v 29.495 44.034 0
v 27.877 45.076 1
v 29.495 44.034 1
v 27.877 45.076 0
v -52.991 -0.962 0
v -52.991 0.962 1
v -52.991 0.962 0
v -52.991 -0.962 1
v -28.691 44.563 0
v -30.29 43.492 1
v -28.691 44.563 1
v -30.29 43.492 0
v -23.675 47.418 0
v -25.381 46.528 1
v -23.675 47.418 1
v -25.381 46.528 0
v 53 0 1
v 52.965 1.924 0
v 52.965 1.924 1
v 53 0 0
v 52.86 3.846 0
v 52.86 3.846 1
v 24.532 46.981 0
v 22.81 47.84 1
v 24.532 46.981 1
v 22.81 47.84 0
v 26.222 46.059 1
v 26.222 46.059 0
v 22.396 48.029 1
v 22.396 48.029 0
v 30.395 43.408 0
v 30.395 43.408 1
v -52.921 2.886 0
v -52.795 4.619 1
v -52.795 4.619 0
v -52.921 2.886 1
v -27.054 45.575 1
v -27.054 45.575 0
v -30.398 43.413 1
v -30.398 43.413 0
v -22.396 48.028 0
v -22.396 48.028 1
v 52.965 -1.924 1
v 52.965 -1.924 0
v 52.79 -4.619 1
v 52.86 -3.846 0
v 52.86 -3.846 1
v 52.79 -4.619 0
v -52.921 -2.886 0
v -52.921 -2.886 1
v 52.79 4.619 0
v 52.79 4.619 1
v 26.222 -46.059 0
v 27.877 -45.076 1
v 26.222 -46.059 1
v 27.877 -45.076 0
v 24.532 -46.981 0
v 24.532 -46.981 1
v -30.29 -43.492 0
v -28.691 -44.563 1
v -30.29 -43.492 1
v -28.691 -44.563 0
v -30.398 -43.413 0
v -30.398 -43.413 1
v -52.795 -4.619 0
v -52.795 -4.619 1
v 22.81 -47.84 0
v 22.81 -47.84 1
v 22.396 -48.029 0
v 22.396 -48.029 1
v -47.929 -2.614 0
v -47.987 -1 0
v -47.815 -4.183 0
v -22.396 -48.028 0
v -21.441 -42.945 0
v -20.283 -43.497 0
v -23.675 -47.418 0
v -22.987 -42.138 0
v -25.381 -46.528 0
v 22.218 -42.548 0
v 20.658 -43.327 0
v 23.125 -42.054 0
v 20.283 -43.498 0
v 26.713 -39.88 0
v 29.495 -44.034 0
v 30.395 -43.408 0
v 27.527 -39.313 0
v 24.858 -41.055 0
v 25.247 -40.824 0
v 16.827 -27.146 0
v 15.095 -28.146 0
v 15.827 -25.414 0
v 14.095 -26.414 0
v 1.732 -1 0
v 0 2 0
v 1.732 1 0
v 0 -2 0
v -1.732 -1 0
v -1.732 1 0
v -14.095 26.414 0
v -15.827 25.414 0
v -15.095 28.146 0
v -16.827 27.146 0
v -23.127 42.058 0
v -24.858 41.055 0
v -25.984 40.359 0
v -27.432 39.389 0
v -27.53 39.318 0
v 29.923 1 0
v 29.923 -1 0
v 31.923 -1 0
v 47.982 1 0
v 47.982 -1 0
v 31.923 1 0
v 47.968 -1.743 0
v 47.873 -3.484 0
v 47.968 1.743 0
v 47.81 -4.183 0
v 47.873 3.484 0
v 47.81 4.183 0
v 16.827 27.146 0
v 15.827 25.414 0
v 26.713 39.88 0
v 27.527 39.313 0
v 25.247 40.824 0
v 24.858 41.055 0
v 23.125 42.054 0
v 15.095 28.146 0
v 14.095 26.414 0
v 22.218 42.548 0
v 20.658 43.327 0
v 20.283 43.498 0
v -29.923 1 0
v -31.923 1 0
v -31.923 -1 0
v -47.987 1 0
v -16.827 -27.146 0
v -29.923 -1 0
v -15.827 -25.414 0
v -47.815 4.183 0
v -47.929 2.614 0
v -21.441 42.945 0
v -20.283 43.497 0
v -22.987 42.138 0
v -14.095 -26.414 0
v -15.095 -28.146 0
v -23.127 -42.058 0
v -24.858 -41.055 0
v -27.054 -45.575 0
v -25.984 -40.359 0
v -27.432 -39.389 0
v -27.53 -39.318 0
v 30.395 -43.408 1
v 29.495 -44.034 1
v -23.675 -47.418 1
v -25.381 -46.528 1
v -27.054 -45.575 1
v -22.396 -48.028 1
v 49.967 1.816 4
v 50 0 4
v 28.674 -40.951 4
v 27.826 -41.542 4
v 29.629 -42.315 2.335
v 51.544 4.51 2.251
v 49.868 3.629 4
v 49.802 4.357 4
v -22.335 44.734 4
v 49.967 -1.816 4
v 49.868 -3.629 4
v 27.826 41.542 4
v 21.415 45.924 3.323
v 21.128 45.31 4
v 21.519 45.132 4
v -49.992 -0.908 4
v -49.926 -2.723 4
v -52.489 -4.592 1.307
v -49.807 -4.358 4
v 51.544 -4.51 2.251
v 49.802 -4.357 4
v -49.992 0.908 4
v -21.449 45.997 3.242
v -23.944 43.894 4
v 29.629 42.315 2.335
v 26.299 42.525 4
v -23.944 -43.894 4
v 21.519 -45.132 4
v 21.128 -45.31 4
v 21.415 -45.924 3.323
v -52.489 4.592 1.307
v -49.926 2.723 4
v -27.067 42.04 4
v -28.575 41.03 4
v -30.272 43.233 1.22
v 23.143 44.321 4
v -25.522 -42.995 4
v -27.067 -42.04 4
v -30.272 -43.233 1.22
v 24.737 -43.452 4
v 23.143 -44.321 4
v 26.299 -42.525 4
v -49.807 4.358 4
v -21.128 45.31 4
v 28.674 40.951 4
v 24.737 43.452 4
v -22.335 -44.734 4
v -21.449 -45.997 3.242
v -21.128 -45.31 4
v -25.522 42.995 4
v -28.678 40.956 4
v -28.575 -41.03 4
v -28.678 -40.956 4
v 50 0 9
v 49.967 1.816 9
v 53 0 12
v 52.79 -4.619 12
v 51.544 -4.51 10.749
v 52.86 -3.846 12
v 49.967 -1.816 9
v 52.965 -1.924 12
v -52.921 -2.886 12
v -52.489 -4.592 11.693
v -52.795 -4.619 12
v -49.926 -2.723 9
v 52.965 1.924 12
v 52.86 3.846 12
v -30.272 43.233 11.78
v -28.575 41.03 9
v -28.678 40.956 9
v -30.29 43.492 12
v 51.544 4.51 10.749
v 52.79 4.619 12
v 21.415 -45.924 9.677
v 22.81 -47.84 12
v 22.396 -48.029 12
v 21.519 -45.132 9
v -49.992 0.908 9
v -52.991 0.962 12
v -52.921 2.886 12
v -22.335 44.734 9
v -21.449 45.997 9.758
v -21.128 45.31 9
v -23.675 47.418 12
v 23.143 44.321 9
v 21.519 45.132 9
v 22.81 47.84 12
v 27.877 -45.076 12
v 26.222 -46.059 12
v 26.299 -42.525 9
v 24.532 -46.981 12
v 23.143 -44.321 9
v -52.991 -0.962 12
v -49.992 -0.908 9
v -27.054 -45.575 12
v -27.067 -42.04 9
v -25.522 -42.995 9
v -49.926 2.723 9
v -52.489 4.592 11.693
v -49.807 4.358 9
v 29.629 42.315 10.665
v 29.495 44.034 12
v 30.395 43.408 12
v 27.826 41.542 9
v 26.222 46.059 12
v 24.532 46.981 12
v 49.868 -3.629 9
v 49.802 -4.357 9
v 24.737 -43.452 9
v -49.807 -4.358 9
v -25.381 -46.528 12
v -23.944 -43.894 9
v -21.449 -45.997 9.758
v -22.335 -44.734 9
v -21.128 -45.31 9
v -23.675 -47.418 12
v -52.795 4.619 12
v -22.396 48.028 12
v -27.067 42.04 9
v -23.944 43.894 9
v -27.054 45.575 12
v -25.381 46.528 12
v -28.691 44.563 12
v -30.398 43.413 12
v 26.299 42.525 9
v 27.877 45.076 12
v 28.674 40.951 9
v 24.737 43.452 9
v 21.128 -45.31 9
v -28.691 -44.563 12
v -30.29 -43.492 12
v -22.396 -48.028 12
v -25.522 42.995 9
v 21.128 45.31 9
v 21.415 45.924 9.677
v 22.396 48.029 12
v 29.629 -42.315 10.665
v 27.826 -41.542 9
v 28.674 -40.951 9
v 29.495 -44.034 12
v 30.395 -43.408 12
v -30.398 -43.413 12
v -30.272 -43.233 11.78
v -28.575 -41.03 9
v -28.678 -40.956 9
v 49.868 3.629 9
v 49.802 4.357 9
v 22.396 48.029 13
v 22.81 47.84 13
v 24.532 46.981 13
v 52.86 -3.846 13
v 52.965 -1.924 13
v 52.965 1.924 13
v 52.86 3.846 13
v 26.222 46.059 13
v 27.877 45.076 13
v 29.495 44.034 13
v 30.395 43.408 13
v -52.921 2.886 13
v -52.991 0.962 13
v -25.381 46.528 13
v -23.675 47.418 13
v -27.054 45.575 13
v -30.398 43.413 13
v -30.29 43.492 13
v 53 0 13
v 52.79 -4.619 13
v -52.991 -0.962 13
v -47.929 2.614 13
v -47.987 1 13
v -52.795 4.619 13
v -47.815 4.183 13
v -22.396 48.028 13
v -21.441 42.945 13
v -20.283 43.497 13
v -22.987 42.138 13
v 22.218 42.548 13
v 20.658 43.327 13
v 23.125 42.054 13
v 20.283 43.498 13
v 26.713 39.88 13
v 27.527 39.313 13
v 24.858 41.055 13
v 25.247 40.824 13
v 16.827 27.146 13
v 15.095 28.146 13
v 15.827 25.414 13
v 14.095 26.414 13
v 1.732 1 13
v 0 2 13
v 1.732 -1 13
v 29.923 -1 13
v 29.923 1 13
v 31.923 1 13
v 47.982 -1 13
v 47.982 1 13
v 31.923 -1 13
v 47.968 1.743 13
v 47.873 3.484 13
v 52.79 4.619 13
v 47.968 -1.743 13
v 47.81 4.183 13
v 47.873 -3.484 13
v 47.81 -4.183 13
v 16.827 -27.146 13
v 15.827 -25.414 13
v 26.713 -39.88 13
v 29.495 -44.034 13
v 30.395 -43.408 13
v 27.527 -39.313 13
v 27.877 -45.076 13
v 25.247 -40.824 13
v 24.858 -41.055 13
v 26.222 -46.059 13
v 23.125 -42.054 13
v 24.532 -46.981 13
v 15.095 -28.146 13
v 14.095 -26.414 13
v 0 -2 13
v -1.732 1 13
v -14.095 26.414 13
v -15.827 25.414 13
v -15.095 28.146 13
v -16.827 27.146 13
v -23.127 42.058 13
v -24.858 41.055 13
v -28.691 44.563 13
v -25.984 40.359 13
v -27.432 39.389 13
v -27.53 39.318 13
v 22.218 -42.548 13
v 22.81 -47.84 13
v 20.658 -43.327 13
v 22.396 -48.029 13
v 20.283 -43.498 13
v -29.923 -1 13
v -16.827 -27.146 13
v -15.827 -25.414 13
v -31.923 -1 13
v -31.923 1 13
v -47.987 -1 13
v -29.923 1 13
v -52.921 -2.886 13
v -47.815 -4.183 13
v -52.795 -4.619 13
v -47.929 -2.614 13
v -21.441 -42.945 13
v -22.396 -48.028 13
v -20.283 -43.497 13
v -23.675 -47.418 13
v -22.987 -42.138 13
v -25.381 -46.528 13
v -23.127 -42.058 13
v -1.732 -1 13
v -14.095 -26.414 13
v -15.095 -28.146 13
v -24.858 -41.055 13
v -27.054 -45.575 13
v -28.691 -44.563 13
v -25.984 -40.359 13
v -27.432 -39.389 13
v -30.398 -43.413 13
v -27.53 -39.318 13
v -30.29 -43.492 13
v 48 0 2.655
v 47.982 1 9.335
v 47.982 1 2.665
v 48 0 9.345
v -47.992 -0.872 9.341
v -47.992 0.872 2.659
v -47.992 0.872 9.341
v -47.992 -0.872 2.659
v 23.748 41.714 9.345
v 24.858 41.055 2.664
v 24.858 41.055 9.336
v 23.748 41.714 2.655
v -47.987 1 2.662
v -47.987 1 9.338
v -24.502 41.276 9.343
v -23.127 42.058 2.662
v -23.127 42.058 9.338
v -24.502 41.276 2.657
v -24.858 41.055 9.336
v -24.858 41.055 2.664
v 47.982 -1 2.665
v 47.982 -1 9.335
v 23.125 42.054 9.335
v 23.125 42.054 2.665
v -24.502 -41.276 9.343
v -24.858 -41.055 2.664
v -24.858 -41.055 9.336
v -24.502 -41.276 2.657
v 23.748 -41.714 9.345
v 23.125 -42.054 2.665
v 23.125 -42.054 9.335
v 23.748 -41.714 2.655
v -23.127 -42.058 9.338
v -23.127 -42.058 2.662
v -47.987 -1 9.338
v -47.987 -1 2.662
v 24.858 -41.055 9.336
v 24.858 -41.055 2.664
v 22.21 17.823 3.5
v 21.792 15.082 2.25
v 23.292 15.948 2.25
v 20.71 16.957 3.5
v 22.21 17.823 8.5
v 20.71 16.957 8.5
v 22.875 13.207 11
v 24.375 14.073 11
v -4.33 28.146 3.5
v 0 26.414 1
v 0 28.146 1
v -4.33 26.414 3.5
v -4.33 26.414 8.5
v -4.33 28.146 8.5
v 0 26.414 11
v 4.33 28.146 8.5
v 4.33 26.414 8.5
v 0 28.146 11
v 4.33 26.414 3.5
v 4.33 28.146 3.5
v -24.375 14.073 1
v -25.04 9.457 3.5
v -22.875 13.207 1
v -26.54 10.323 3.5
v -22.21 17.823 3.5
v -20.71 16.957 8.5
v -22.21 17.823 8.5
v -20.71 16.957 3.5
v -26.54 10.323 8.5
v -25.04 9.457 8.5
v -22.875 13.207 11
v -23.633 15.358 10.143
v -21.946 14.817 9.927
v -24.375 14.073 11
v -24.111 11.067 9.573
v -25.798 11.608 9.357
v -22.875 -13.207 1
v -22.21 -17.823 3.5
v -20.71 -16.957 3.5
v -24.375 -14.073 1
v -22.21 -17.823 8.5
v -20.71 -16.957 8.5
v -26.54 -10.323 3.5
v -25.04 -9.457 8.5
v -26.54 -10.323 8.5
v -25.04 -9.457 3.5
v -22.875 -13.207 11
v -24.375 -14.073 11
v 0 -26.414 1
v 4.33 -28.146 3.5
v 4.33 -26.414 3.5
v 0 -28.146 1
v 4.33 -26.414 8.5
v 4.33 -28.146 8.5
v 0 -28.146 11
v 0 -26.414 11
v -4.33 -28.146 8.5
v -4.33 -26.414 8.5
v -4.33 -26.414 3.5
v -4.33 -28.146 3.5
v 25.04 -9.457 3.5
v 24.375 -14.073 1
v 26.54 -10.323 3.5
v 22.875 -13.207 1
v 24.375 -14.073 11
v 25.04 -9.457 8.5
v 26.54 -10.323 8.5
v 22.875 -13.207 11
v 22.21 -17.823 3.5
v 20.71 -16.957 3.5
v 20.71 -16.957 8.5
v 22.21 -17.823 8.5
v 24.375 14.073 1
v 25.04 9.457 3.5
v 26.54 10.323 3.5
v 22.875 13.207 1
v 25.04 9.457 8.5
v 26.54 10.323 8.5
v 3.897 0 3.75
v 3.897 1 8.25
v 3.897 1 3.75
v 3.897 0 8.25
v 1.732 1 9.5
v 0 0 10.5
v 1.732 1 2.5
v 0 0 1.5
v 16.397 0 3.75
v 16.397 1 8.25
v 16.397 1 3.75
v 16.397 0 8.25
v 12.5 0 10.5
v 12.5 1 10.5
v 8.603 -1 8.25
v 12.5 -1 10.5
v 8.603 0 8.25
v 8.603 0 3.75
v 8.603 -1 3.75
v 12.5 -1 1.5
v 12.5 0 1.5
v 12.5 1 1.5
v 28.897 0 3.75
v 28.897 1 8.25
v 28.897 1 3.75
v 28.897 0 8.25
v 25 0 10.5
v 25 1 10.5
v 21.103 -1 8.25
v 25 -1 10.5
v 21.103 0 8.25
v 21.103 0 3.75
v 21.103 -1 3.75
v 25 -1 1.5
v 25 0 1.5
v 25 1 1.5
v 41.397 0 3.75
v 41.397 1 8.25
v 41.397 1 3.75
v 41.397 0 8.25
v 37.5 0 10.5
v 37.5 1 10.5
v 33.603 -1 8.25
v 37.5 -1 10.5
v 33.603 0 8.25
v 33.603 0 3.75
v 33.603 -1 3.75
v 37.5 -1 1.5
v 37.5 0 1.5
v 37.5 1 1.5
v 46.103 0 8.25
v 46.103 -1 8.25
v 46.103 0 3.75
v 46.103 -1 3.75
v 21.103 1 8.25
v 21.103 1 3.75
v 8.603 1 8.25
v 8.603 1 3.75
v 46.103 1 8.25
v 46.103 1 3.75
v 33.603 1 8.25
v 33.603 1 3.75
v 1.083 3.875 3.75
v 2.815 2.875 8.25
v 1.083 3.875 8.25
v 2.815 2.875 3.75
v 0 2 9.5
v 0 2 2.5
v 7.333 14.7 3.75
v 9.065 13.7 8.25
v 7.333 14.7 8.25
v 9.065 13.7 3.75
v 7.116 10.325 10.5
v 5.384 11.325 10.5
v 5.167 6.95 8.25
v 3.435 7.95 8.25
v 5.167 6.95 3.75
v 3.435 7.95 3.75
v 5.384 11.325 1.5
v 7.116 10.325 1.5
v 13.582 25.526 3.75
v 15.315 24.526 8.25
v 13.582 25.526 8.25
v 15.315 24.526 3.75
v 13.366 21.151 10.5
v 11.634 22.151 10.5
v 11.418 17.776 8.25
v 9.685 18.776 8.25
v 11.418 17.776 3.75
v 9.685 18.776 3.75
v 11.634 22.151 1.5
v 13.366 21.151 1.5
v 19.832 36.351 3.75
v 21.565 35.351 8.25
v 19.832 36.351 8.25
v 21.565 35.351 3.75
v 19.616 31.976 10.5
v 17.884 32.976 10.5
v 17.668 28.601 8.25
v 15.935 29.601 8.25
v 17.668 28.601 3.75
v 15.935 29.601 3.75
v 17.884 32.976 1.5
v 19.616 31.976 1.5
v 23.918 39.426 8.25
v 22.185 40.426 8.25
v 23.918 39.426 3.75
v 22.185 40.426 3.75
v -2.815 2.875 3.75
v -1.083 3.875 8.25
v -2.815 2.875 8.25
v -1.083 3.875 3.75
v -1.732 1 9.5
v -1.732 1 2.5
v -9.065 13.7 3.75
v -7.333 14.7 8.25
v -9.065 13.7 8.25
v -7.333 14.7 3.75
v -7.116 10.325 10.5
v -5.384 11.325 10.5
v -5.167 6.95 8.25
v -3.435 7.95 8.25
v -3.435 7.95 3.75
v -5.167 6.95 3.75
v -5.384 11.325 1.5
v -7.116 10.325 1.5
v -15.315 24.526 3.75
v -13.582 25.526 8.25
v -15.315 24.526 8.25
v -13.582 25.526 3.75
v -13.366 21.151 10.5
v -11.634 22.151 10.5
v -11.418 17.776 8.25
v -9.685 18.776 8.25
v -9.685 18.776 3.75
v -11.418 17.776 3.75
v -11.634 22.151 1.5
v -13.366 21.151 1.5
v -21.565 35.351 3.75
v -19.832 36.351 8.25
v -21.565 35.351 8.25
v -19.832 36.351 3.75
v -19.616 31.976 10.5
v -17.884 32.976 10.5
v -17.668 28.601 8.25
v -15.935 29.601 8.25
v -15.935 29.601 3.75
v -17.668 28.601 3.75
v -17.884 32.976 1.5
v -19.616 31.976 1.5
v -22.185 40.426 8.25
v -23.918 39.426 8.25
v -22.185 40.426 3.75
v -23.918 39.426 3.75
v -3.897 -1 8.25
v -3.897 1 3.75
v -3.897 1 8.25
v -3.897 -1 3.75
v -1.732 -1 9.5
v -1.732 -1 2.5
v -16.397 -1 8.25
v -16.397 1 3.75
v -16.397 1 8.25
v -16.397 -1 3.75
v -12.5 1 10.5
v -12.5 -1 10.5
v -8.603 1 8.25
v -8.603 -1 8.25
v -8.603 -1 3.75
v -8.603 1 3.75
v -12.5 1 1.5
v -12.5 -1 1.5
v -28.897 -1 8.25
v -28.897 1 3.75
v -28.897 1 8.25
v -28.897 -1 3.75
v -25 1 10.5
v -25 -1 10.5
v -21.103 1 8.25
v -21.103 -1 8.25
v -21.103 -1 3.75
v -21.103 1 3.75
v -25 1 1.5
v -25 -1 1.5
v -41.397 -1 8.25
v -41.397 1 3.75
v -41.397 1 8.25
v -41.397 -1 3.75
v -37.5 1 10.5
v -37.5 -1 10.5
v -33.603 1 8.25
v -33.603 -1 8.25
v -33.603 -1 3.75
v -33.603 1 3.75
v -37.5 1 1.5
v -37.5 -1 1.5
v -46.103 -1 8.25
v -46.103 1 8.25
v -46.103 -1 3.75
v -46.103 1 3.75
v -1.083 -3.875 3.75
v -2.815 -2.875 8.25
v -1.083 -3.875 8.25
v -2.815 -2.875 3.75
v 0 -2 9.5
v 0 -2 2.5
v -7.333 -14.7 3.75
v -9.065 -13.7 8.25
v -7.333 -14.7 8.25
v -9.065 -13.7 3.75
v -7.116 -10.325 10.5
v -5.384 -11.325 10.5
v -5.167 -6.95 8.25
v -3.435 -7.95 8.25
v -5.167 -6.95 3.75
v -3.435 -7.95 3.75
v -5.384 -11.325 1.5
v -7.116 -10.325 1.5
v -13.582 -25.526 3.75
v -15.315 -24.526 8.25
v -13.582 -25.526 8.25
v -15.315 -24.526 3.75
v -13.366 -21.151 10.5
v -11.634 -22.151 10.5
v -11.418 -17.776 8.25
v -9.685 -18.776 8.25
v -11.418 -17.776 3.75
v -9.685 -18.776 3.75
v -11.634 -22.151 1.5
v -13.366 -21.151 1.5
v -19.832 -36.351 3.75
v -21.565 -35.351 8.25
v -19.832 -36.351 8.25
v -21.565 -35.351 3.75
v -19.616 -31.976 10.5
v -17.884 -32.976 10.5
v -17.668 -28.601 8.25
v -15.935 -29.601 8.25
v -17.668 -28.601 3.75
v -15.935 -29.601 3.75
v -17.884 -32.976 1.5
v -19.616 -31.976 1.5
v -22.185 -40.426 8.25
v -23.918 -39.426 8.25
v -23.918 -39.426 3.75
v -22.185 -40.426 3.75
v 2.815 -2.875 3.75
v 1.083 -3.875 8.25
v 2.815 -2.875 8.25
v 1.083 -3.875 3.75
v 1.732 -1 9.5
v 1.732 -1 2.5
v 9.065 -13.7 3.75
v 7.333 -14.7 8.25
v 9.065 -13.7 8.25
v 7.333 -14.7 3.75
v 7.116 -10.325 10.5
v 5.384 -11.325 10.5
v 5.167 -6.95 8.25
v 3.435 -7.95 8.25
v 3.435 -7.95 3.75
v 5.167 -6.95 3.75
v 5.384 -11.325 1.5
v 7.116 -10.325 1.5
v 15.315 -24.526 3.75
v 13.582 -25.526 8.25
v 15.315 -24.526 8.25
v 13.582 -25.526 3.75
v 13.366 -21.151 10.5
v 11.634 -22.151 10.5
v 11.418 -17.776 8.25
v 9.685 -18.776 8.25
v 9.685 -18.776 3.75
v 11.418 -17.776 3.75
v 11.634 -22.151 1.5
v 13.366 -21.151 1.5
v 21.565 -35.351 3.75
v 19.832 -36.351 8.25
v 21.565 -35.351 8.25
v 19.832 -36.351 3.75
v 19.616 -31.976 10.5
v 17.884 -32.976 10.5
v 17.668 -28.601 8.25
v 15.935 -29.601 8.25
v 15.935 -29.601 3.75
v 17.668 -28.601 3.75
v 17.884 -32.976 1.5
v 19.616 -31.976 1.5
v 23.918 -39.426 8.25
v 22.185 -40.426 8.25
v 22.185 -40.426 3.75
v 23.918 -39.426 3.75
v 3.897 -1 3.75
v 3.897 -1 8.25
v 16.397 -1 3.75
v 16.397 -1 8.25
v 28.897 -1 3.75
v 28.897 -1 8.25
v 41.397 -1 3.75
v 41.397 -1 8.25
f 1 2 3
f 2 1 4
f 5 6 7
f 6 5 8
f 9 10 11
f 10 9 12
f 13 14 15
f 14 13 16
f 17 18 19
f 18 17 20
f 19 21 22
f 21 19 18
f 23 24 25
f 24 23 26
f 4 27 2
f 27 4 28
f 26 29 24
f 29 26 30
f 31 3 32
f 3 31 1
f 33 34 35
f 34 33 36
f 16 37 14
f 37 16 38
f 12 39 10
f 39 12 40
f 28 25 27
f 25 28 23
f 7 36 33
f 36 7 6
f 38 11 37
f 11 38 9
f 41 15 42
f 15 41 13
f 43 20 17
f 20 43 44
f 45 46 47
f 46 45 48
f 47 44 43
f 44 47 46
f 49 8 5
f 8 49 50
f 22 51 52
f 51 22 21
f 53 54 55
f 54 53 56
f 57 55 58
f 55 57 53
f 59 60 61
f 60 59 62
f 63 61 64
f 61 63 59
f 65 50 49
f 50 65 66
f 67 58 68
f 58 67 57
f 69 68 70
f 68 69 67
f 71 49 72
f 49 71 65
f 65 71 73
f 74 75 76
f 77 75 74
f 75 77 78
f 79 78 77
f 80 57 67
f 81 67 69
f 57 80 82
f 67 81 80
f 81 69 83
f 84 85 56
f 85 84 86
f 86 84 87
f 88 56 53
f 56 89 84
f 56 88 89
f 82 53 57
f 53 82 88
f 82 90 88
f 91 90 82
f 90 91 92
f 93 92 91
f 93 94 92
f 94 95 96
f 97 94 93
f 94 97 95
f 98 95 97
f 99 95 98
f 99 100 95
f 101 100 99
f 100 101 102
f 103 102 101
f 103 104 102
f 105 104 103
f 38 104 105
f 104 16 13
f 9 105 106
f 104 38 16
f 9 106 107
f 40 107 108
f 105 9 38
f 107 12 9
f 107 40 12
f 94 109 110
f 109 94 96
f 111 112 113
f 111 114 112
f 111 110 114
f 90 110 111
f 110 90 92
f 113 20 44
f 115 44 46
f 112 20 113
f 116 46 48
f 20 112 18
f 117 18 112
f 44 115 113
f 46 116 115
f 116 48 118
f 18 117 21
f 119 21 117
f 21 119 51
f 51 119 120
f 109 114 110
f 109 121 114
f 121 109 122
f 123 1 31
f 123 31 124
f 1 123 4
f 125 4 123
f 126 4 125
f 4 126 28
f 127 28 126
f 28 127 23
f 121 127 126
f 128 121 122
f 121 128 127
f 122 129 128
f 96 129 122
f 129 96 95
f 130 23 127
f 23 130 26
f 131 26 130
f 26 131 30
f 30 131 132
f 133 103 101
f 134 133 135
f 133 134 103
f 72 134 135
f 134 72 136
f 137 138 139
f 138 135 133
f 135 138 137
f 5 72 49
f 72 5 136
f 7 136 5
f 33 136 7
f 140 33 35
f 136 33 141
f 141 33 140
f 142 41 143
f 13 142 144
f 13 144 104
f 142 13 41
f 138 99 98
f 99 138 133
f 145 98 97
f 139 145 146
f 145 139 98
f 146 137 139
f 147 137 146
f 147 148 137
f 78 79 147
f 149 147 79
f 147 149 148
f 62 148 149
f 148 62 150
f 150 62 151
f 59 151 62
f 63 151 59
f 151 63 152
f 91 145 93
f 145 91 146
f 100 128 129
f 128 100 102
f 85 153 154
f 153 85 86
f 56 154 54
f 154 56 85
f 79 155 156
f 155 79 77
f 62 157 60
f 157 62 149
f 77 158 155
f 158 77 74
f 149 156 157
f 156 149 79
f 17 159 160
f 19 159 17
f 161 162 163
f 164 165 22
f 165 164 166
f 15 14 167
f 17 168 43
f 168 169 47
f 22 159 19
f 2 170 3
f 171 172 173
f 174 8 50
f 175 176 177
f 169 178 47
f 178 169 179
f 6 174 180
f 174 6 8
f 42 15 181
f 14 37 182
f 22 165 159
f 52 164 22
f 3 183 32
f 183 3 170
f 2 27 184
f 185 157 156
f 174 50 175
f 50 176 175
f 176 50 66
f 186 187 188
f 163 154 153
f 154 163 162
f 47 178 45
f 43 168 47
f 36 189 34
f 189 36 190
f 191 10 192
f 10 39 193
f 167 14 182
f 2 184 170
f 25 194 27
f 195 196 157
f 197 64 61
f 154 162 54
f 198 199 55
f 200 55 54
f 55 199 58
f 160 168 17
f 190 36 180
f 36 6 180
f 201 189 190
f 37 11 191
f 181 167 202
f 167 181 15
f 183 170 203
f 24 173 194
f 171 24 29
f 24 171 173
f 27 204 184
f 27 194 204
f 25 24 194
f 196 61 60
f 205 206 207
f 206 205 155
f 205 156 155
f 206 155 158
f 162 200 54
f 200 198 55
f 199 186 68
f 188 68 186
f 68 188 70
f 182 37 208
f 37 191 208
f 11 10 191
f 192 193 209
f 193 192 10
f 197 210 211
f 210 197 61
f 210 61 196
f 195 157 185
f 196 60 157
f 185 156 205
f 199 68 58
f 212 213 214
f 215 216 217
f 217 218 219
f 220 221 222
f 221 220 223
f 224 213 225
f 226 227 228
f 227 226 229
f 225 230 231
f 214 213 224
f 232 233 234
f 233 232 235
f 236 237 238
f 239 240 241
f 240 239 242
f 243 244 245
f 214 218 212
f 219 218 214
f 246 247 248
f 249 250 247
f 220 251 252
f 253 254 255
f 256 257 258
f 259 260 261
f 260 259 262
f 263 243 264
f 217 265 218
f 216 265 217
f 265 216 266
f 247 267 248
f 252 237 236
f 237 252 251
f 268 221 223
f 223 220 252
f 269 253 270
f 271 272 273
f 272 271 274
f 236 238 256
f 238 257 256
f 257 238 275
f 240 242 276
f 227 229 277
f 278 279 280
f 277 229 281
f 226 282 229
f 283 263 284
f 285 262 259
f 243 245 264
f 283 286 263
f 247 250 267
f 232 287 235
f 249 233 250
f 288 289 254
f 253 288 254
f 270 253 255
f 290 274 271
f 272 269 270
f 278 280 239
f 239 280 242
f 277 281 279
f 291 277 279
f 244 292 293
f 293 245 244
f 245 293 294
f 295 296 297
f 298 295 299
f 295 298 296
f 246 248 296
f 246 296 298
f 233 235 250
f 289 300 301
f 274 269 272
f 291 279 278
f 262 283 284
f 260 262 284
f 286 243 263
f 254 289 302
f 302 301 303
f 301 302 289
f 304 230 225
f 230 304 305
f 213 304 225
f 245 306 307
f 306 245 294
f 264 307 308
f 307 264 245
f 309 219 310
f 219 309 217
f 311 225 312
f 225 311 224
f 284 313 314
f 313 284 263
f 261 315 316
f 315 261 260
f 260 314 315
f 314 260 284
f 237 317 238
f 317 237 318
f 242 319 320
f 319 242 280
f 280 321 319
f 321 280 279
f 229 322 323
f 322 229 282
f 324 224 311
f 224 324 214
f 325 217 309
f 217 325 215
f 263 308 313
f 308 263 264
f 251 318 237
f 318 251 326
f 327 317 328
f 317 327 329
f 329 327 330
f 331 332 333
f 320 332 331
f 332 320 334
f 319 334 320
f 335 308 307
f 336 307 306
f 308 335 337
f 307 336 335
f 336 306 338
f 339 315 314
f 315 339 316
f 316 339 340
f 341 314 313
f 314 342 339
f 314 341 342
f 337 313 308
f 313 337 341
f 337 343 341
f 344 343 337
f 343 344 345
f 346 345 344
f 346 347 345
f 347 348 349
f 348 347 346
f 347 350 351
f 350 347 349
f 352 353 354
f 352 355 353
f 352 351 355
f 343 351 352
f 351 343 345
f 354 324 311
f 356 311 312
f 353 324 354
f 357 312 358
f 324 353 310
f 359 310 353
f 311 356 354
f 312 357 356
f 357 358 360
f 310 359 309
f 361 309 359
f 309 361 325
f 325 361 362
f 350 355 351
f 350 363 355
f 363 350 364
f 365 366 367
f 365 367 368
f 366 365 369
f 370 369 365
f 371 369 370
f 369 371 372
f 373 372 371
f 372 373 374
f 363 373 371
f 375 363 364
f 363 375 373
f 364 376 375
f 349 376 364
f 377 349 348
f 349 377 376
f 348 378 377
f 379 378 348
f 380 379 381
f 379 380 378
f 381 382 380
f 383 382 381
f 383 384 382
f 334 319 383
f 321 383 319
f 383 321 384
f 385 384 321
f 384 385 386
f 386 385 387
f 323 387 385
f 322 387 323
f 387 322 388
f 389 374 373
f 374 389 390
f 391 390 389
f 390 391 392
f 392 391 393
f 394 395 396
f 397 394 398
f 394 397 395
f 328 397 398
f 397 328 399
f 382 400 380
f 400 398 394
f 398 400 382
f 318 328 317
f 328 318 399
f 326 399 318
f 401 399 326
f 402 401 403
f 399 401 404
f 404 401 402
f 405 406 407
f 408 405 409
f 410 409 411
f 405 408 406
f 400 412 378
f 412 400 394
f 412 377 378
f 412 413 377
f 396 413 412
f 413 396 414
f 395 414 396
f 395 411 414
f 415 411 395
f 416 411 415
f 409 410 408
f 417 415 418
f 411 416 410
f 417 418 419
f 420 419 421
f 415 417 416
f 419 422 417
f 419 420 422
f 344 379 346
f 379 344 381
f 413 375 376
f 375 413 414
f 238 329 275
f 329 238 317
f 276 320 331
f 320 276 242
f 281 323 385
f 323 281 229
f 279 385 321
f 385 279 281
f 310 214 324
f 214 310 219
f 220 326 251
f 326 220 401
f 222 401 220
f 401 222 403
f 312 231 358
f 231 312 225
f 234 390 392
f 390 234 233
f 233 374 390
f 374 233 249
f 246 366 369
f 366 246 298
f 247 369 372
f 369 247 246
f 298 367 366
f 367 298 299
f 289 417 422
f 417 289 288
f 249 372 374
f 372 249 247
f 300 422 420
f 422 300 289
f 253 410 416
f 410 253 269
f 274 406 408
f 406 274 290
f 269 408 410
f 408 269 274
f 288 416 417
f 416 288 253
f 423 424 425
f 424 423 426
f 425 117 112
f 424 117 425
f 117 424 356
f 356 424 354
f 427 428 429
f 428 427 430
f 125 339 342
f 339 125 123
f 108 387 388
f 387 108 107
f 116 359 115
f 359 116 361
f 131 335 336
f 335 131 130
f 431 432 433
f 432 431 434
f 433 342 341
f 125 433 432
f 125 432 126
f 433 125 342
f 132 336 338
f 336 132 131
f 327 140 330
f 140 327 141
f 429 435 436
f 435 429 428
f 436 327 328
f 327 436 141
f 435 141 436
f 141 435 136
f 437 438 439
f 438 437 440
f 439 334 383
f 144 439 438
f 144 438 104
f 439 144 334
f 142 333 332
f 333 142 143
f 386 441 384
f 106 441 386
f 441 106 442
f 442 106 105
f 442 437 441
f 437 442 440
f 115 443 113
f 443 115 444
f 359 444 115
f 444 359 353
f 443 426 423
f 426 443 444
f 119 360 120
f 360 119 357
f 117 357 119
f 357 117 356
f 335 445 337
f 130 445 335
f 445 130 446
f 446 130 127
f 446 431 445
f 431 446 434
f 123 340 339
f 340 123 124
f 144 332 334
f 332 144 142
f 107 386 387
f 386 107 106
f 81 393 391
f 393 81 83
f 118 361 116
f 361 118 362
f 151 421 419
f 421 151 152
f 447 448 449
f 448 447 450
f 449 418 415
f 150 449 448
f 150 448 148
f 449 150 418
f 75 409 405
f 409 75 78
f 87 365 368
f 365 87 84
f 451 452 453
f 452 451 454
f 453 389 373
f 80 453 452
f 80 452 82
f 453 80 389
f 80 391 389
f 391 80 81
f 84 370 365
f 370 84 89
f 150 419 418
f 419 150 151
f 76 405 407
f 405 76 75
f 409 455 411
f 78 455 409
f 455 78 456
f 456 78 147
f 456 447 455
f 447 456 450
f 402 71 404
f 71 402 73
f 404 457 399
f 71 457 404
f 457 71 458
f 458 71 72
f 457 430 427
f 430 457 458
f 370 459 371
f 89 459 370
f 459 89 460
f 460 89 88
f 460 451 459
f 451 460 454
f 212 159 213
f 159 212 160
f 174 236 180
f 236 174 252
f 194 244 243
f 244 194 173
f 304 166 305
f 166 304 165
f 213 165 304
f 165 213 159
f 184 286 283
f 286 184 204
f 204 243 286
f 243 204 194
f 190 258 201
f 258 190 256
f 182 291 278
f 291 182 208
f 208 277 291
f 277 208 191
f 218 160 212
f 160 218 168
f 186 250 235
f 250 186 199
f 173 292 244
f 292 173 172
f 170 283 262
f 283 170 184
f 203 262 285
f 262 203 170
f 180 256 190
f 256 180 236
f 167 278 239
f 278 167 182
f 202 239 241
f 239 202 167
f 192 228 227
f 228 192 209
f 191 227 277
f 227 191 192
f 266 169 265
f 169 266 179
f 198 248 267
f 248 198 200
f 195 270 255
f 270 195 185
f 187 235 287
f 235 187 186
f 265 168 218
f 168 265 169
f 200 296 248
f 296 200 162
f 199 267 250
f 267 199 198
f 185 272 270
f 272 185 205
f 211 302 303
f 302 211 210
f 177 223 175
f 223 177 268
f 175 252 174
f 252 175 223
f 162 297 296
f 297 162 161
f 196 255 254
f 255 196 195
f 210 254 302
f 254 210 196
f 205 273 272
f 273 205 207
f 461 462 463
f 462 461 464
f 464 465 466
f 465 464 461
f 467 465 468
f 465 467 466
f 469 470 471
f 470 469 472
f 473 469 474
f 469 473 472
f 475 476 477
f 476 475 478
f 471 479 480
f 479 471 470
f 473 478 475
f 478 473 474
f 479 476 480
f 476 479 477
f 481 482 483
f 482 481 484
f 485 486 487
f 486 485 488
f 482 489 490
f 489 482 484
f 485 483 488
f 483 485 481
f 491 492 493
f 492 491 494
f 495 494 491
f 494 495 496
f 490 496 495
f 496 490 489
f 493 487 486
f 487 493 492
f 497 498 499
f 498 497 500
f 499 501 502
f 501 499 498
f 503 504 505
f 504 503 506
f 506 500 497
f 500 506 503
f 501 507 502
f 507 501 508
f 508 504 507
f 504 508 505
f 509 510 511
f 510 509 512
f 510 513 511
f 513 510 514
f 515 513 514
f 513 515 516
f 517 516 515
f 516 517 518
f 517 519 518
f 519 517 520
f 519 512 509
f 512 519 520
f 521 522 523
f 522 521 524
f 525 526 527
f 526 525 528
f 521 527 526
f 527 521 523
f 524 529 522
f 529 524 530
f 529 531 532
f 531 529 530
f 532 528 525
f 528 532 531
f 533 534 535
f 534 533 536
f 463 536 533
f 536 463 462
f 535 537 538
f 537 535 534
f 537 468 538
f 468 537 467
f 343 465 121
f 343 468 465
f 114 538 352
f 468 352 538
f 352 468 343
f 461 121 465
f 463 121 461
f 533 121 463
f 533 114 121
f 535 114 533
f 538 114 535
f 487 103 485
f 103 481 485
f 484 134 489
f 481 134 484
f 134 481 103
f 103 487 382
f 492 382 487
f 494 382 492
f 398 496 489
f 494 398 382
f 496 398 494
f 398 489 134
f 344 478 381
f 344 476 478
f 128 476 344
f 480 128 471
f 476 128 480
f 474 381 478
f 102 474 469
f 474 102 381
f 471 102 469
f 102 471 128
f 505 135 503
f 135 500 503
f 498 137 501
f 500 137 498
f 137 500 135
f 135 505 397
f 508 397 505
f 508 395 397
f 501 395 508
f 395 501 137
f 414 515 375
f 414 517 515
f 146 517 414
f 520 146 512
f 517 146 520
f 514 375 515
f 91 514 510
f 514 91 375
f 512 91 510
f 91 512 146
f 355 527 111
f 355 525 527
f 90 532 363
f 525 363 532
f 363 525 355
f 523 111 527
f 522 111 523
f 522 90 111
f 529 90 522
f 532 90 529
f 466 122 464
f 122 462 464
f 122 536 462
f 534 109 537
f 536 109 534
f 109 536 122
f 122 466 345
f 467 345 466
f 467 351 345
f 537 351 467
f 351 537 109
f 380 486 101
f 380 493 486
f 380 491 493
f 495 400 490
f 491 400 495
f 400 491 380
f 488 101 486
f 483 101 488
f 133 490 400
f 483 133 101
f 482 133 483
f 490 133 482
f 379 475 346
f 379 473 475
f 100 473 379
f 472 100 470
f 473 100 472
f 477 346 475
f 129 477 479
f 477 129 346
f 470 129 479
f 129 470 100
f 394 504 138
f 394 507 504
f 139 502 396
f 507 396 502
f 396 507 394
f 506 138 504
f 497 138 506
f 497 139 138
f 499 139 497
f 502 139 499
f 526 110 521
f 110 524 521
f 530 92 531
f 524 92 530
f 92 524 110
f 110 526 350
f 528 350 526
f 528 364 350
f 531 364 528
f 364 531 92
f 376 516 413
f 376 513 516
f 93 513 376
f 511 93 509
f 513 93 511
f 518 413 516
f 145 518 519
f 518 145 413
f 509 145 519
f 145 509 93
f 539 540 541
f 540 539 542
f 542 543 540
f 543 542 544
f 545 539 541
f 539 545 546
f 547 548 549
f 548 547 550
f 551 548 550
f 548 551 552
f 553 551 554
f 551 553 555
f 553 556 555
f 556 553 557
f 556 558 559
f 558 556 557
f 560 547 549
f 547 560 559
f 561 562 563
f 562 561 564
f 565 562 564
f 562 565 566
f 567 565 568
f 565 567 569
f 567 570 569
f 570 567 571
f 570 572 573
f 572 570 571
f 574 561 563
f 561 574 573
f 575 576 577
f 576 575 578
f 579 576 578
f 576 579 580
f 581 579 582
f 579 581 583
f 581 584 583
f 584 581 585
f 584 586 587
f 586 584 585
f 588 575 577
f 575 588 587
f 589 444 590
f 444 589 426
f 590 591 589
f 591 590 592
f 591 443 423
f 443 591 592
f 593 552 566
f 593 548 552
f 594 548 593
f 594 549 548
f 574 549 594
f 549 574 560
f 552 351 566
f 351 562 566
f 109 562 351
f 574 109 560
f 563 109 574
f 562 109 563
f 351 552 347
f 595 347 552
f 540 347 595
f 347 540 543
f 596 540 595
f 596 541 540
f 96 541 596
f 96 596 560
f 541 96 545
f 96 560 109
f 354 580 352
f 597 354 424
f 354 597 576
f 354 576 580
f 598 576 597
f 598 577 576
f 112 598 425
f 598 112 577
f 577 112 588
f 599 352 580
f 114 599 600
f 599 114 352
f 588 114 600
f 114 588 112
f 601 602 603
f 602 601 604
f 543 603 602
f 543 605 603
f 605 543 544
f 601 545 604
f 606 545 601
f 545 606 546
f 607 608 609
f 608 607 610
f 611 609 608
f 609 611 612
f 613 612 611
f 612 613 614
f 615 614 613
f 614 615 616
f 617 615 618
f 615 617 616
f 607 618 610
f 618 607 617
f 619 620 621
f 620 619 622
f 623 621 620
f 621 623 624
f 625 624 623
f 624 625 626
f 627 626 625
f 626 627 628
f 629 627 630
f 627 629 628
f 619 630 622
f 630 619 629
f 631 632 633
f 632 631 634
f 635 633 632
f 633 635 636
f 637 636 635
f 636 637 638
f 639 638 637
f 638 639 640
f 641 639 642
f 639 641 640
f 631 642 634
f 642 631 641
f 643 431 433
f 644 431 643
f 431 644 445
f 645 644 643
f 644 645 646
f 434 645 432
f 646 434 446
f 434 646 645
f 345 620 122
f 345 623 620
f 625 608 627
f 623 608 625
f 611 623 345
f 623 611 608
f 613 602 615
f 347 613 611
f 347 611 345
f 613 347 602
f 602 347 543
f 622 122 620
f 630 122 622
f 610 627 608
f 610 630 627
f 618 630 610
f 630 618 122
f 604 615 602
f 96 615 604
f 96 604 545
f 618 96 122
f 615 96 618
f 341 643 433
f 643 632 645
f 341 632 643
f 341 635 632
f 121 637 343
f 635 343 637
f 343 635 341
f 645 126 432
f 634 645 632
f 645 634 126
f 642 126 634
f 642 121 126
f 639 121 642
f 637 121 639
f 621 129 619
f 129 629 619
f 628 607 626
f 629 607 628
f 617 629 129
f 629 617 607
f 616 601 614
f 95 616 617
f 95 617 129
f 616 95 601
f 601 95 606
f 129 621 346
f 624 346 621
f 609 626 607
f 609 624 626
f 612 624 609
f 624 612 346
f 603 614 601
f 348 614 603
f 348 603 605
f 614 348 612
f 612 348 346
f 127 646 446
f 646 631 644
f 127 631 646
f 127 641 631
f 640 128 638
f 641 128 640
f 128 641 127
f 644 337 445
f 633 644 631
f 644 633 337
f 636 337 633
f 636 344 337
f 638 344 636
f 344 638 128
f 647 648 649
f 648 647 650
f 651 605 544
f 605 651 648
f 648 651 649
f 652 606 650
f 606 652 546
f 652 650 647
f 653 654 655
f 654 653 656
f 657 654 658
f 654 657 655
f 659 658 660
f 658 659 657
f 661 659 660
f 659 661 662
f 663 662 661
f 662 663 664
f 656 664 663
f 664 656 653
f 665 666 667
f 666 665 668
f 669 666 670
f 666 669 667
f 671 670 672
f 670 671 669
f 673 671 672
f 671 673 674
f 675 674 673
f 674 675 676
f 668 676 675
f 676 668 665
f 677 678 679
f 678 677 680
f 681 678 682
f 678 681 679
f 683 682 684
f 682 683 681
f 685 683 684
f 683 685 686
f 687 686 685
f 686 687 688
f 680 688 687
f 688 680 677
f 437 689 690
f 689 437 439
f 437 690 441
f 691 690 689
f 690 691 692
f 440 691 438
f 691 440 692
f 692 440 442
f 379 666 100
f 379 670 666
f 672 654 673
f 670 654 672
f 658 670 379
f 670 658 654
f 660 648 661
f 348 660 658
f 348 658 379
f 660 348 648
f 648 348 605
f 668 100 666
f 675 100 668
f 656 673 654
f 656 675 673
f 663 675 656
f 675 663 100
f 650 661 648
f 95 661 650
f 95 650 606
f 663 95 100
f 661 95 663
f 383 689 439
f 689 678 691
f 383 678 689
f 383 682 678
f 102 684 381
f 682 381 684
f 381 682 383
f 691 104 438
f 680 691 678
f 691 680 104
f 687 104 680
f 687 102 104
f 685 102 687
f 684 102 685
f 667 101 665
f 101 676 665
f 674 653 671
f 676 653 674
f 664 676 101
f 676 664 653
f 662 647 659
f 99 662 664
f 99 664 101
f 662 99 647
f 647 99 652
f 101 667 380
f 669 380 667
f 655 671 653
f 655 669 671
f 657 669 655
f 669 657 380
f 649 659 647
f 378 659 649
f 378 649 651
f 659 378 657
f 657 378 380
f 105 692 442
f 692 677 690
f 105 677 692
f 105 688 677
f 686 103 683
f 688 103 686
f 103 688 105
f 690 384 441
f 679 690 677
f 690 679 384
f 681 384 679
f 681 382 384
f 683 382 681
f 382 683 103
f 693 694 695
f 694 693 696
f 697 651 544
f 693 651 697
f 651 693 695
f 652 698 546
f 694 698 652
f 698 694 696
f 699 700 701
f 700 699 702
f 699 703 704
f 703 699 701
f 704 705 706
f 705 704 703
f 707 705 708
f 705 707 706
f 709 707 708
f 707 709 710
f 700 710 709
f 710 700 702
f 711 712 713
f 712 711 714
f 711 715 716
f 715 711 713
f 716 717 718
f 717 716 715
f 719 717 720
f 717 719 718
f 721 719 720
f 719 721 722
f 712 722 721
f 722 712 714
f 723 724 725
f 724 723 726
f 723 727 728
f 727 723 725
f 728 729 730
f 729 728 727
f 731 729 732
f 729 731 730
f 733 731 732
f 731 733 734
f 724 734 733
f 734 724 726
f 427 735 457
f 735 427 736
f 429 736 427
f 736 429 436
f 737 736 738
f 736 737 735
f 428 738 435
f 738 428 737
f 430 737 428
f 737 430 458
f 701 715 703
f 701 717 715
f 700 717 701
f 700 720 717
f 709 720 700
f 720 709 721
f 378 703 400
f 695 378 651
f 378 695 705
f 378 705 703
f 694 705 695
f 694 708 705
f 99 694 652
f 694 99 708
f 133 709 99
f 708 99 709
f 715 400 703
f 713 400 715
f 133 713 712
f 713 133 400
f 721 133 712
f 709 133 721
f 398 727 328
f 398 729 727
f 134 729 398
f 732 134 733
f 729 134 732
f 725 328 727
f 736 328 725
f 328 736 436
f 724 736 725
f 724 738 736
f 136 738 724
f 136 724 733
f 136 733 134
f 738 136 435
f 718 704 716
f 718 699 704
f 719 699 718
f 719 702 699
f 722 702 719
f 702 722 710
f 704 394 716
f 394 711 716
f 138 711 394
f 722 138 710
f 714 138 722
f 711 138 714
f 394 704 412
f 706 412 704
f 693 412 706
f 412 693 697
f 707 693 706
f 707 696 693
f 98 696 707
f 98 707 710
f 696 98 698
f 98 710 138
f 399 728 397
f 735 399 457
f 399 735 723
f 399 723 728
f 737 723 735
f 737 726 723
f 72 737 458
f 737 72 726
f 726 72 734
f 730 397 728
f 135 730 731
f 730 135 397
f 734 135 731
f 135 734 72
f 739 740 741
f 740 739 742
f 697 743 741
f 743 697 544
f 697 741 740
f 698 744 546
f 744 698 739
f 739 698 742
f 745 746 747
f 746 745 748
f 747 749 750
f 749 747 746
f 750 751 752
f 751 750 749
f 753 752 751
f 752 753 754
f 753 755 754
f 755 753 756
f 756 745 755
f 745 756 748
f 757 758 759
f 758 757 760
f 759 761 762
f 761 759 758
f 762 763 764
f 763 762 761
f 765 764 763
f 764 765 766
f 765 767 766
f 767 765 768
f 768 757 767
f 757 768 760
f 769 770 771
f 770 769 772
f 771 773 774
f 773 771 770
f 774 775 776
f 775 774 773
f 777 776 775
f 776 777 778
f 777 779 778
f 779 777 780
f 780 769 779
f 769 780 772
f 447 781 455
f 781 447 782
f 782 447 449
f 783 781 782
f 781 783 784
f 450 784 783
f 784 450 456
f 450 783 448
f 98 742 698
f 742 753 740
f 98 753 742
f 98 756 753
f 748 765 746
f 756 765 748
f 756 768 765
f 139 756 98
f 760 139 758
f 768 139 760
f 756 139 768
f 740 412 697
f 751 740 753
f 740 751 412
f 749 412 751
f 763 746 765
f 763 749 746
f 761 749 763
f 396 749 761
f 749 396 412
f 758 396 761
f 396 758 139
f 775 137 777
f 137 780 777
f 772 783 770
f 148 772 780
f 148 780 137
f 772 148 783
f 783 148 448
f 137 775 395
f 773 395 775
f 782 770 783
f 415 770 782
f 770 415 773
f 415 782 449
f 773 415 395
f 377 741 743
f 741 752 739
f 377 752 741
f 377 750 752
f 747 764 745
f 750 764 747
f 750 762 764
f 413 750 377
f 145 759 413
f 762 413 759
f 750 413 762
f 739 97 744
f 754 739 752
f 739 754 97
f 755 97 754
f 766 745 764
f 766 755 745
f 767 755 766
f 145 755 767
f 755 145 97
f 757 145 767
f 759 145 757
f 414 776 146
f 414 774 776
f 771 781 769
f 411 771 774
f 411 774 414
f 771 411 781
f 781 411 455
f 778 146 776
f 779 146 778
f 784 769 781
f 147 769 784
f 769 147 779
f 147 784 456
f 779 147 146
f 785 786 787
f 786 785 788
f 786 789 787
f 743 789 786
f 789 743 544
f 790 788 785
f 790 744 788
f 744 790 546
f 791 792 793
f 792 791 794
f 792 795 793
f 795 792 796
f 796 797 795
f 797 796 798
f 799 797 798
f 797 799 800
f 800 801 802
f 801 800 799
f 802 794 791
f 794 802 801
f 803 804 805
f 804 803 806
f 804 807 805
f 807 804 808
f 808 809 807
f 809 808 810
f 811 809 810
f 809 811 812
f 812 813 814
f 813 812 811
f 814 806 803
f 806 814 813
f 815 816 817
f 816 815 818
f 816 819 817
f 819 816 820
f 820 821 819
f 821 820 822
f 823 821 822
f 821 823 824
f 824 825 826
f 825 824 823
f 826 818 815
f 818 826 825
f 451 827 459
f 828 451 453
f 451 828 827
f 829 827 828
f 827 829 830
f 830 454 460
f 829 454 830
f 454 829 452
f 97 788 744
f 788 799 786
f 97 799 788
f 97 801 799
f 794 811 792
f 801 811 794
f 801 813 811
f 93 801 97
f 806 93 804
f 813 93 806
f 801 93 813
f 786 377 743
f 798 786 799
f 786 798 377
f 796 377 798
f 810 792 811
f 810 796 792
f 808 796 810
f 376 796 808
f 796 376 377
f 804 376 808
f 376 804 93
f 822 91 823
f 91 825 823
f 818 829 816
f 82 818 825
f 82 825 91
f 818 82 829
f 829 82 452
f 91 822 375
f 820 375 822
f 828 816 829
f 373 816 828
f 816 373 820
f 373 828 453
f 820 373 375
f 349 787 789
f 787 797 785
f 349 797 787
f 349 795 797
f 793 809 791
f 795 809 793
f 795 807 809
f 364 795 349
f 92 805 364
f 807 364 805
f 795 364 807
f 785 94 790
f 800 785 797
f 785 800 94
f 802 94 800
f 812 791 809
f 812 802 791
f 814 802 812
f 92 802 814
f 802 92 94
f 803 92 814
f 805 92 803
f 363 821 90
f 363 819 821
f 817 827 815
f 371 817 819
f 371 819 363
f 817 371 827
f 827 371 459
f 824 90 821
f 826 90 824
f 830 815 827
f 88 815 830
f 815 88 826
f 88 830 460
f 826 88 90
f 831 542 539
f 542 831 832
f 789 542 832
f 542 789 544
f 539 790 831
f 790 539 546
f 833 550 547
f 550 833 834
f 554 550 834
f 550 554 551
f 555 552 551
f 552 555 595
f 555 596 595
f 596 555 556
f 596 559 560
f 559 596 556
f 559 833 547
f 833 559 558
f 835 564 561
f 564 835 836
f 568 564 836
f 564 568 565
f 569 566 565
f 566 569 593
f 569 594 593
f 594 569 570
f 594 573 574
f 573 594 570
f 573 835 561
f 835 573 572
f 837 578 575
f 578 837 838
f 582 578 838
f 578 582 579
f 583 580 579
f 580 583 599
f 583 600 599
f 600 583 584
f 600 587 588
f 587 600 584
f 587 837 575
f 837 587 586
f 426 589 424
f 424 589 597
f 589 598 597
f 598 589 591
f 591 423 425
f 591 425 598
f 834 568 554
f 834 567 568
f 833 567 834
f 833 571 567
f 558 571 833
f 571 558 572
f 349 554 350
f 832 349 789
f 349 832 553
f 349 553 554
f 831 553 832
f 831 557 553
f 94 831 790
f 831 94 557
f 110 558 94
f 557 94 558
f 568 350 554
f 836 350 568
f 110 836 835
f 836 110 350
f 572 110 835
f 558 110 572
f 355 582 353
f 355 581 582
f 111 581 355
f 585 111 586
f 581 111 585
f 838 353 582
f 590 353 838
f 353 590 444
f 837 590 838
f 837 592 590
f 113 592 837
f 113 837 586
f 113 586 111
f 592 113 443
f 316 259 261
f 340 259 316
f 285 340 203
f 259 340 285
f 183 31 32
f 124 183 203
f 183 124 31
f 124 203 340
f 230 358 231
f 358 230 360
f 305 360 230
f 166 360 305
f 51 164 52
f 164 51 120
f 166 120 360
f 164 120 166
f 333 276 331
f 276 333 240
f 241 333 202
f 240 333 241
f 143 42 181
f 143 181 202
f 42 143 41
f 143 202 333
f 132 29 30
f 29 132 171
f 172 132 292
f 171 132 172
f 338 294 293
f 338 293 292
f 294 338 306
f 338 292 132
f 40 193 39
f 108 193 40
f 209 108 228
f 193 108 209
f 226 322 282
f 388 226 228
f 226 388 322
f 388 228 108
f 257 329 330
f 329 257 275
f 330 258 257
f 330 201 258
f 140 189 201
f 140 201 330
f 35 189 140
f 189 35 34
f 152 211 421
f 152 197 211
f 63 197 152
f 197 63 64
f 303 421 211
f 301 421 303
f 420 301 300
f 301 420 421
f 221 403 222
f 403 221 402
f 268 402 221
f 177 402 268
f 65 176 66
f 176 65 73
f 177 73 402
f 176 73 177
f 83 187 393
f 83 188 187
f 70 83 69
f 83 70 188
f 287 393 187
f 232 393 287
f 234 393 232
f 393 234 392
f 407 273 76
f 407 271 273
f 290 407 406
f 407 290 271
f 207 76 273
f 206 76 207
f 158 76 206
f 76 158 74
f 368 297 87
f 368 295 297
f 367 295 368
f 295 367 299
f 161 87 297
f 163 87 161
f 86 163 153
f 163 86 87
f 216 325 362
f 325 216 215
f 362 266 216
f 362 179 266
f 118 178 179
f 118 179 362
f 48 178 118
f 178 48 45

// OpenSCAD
// 100uH coil form for 28ga wire (0.321mm dia)
// 23 turns

dia = 100;
d2 = 65;
sides = 6;
len = 8;
flange_thickness = 1;
flange_len = 3;
thickness = 2;
epsilon = 0.1;

difference(){
  union(){
    difference(){
      union(){
        difference(){
          union(){
            cylinder($fn=173, d = dia+2*flange_len, h = flange_thickness);
            translate([0, 0, flange_thickness])
              cylinder($fn=173, d1 = dia+2*flange_len,
                       d2 = dia, h = flange_len);
            translate([0, 0, len+flange_thickness]){
              cylinder($fn=173, d1=dia,
                       d2 = dia+2*flange_len, h = flange_len);
            }
            translate([0, 0, len+flange_thickness+flange_len]){
              cylinder($fn=173, d=dia+2*flange_len, h = flange_thickness);
            }
          }
          translate([0, 0, -epsilon]){
            cylinder($fn=173, d = dia-2*thickness,
                     h = len+2*flange_len+2*flange_thickness+2*epsilon);
          }
        }
        
        difference(){
          cylinder($fn=173, d = dia, h = len+2*flange_thickness);
          translate([0, 0, -epsilon]){
            cylinder($fn=173, d = dia-2*thickness,
                     h = len+2*flange_thickness+2*epsilon);
          }
        }
        
        difference(){
          cylinder($fn=sides, d = d2, h = len+2*flange_thickness+flange_len);
          for (theta = [0:360/sides:360]){
            translate([0, 0, thickness+len/2])
              rotate([0, 90, theta+30]){
              translate([0, 0, 15])
                cylinder($fn=6, d=len+2, h=20);
            }
          }
          translate([0, 0, -epsilon]){
            cylinder($fn=sides, d = d2-2*thickness,
                     h = len+2*flange_thickness+2*epsilon+flange_len);
          }
        } 
      }
    }
    
    for (theta = [0:360/sides:360]){
      rotate([0, 0, theta]){
        translate([0, -thickness/2, 0]){
          difference(){
            cube([dia/2, thickness, len+1*flange_len+2*flange_thickness]);
            for (x = [0:dia/8:dia]){
              translate([x, thickness+epsilon, len/2+thickness])
                rotate([90, 30, 0])
                cylinder($fn=6, d = len+1, h = thickness+2*epsilon);
            }
          }
        }
      }
    }

  }    
  for (theta = [30:360/sides:360+30]){
    r1 =35;
    r2 = 60;
    dth =25;
    translate([0, 0, -epsilon])
      linear_extrude(height=len+2*epsilon+flange_len+2*flange_thickness){
      polygon(points=[[r1*cos(theta-dth), r1*sin(theta-dth)],
                      [r2*cos(theta-dth), r2*sin(theta-dth)],
                      [r2*cos(theta+dth), r2*sin(theta+dth)],
                      [r1*cos(theta+dth), r1*sin(theta+dth)]]);
    }
  }
}
